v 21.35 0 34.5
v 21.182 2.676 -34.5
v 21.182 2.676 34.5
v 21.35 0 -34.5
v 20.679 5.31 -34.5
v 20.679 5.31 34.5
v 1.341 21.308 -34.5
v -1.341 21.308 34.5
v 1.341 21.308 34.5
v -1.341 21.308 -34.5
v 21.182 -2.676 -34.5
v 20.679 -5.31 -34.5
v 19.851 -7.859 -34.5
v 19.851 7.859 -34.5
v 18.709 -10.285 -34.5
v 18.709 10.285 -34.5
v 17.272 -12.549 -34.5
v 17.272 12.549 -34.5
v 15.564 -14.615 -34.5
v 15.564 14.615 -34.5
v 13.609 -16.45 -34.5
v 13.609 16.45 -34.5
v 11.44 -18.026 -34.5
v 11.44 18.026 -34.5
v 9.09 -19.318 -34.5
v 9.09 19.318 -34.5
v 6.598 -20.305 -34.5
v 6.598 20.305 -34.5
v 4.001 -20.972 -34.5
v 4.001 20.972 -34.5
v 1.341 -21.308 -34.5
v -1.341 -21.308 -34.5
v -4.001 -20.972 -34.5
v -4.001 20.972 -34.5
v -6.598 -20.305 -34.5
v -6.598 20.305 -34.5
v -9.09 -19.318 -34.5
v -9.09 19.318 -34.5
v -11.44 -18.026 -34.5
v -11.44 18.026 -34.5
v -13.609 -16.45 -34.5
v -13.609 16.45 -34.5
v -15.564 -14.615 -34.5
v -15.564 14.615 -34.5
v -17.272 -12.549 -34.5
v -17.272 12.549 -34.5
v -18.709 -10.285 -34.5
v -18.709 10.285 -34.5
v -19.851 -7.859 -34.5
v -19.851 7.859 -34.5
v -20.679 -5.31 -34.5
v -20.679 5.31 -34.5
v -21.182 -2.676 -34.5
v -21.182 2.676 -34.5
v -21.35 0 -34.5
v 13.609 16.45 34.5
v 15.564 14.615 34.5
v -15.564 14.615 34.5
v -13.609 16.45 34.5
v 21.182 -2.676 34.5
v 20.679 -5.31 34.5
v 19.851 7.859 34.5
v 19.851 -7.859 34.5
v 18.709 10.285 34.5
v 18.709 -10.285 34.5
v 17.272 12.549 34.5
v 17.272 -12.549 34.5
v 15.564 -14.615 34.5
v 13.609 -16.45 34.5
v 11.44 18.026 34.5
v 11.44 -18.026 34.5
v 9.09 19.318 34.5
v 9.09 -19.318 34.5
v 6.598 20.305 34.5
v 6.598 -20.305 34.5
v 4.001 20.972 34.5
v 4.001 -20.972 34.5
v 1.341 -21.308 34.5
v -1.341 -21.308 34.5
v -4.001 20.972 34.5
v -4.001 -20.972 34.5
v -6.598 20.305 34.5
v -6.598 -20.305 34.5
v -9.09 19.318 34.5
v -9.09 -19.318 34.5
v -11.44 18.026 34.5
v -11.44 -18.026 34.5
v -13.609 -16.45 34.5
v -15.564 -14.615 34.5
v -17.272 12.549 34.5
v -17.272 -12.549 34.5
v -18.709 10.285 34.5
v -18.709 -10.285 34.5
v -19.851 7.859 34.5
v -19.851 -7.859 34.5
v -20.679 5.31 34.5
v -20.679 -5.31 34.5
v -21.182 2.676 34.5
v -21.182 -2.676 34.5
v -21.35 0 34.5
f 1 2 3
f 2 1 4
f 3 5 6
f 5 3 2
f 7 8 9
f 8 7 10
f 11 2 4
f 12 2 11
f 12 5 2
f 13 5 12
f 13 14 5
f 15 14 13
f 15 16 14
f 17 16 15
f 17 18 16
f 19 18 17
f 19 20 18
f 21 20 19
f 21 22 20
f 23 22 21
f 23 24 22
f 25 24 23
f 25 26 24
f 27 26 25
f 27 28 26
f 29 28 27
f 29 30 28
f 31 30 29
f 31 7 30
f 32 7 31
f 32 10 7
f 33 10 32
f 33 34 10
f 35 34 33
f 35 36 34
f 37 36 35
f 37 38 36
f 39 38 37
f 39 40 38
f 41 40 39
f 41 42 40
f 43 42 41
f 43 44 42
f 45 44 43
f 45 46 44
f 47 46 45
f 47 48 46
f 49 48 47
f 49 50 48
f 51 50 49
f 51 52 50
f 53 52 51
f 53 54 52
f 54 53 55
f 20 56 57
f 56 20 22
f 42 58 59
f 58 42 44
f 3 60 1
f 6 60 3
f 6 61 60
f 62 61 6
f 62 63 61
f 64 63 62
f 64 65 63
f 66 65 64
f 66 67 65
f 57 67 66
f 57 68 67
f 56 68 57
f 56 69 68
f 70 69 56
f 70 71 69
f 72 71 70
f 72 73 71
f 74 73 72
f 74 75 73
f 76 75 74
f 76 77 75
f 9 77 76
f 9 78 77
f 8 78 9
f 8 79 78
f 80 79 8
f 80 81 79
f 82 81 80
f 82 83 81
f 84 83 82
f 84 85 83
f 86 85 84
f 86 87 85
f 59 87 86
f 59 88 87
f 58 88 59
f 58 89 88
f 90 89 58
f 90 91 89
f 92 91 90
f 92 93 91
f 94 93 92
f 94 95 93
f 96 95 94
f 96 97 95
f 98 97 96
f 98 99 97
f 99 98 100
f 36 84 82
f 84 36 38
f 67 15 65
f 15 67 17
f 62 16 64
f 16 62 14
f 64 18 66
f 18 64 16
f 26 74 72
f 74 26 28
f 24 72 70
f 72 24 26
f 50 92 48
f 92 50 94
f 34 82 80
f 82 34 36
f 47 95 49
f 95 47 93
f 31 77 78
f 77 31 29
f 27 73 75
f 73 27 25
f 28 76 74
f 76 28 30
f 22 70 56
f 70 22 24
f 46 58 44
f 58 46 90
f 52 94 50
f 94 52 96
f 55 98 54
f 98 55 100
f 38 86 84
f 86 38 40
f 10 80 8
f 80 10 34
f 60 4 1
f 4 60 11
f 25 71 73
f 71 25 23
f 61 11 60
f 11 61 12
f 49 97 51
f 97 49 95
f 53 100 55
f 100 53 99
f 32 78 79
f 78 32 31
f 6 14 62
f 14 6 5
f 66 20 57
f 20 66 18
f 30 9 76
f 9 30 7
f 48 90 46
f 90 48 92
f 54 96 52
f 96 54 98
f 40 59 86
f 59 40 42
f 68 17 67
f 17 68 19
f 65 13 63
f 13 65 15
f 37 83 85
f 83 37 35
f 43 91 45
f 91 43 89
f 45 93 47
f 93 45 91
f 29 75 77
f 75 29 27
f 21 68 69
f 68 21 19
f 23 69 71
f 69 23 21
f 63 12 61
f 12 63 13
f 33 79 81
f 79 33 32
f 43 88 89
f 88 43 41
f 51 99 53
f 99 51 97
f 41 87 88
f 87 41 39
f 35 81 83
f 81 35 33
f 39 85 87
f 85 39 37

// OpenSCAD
$fn = 50;


difference() {
	union() {
		translate(v = [0, 0, -34.5000000000]) {
			cylinder(h = 69, r = 21.3500000000);
		}
	}
	union() {
		translate(v = [0, 0, -100.0000000000]) {
			cylinder(h = 200, r = 0);
		}
	}
}
